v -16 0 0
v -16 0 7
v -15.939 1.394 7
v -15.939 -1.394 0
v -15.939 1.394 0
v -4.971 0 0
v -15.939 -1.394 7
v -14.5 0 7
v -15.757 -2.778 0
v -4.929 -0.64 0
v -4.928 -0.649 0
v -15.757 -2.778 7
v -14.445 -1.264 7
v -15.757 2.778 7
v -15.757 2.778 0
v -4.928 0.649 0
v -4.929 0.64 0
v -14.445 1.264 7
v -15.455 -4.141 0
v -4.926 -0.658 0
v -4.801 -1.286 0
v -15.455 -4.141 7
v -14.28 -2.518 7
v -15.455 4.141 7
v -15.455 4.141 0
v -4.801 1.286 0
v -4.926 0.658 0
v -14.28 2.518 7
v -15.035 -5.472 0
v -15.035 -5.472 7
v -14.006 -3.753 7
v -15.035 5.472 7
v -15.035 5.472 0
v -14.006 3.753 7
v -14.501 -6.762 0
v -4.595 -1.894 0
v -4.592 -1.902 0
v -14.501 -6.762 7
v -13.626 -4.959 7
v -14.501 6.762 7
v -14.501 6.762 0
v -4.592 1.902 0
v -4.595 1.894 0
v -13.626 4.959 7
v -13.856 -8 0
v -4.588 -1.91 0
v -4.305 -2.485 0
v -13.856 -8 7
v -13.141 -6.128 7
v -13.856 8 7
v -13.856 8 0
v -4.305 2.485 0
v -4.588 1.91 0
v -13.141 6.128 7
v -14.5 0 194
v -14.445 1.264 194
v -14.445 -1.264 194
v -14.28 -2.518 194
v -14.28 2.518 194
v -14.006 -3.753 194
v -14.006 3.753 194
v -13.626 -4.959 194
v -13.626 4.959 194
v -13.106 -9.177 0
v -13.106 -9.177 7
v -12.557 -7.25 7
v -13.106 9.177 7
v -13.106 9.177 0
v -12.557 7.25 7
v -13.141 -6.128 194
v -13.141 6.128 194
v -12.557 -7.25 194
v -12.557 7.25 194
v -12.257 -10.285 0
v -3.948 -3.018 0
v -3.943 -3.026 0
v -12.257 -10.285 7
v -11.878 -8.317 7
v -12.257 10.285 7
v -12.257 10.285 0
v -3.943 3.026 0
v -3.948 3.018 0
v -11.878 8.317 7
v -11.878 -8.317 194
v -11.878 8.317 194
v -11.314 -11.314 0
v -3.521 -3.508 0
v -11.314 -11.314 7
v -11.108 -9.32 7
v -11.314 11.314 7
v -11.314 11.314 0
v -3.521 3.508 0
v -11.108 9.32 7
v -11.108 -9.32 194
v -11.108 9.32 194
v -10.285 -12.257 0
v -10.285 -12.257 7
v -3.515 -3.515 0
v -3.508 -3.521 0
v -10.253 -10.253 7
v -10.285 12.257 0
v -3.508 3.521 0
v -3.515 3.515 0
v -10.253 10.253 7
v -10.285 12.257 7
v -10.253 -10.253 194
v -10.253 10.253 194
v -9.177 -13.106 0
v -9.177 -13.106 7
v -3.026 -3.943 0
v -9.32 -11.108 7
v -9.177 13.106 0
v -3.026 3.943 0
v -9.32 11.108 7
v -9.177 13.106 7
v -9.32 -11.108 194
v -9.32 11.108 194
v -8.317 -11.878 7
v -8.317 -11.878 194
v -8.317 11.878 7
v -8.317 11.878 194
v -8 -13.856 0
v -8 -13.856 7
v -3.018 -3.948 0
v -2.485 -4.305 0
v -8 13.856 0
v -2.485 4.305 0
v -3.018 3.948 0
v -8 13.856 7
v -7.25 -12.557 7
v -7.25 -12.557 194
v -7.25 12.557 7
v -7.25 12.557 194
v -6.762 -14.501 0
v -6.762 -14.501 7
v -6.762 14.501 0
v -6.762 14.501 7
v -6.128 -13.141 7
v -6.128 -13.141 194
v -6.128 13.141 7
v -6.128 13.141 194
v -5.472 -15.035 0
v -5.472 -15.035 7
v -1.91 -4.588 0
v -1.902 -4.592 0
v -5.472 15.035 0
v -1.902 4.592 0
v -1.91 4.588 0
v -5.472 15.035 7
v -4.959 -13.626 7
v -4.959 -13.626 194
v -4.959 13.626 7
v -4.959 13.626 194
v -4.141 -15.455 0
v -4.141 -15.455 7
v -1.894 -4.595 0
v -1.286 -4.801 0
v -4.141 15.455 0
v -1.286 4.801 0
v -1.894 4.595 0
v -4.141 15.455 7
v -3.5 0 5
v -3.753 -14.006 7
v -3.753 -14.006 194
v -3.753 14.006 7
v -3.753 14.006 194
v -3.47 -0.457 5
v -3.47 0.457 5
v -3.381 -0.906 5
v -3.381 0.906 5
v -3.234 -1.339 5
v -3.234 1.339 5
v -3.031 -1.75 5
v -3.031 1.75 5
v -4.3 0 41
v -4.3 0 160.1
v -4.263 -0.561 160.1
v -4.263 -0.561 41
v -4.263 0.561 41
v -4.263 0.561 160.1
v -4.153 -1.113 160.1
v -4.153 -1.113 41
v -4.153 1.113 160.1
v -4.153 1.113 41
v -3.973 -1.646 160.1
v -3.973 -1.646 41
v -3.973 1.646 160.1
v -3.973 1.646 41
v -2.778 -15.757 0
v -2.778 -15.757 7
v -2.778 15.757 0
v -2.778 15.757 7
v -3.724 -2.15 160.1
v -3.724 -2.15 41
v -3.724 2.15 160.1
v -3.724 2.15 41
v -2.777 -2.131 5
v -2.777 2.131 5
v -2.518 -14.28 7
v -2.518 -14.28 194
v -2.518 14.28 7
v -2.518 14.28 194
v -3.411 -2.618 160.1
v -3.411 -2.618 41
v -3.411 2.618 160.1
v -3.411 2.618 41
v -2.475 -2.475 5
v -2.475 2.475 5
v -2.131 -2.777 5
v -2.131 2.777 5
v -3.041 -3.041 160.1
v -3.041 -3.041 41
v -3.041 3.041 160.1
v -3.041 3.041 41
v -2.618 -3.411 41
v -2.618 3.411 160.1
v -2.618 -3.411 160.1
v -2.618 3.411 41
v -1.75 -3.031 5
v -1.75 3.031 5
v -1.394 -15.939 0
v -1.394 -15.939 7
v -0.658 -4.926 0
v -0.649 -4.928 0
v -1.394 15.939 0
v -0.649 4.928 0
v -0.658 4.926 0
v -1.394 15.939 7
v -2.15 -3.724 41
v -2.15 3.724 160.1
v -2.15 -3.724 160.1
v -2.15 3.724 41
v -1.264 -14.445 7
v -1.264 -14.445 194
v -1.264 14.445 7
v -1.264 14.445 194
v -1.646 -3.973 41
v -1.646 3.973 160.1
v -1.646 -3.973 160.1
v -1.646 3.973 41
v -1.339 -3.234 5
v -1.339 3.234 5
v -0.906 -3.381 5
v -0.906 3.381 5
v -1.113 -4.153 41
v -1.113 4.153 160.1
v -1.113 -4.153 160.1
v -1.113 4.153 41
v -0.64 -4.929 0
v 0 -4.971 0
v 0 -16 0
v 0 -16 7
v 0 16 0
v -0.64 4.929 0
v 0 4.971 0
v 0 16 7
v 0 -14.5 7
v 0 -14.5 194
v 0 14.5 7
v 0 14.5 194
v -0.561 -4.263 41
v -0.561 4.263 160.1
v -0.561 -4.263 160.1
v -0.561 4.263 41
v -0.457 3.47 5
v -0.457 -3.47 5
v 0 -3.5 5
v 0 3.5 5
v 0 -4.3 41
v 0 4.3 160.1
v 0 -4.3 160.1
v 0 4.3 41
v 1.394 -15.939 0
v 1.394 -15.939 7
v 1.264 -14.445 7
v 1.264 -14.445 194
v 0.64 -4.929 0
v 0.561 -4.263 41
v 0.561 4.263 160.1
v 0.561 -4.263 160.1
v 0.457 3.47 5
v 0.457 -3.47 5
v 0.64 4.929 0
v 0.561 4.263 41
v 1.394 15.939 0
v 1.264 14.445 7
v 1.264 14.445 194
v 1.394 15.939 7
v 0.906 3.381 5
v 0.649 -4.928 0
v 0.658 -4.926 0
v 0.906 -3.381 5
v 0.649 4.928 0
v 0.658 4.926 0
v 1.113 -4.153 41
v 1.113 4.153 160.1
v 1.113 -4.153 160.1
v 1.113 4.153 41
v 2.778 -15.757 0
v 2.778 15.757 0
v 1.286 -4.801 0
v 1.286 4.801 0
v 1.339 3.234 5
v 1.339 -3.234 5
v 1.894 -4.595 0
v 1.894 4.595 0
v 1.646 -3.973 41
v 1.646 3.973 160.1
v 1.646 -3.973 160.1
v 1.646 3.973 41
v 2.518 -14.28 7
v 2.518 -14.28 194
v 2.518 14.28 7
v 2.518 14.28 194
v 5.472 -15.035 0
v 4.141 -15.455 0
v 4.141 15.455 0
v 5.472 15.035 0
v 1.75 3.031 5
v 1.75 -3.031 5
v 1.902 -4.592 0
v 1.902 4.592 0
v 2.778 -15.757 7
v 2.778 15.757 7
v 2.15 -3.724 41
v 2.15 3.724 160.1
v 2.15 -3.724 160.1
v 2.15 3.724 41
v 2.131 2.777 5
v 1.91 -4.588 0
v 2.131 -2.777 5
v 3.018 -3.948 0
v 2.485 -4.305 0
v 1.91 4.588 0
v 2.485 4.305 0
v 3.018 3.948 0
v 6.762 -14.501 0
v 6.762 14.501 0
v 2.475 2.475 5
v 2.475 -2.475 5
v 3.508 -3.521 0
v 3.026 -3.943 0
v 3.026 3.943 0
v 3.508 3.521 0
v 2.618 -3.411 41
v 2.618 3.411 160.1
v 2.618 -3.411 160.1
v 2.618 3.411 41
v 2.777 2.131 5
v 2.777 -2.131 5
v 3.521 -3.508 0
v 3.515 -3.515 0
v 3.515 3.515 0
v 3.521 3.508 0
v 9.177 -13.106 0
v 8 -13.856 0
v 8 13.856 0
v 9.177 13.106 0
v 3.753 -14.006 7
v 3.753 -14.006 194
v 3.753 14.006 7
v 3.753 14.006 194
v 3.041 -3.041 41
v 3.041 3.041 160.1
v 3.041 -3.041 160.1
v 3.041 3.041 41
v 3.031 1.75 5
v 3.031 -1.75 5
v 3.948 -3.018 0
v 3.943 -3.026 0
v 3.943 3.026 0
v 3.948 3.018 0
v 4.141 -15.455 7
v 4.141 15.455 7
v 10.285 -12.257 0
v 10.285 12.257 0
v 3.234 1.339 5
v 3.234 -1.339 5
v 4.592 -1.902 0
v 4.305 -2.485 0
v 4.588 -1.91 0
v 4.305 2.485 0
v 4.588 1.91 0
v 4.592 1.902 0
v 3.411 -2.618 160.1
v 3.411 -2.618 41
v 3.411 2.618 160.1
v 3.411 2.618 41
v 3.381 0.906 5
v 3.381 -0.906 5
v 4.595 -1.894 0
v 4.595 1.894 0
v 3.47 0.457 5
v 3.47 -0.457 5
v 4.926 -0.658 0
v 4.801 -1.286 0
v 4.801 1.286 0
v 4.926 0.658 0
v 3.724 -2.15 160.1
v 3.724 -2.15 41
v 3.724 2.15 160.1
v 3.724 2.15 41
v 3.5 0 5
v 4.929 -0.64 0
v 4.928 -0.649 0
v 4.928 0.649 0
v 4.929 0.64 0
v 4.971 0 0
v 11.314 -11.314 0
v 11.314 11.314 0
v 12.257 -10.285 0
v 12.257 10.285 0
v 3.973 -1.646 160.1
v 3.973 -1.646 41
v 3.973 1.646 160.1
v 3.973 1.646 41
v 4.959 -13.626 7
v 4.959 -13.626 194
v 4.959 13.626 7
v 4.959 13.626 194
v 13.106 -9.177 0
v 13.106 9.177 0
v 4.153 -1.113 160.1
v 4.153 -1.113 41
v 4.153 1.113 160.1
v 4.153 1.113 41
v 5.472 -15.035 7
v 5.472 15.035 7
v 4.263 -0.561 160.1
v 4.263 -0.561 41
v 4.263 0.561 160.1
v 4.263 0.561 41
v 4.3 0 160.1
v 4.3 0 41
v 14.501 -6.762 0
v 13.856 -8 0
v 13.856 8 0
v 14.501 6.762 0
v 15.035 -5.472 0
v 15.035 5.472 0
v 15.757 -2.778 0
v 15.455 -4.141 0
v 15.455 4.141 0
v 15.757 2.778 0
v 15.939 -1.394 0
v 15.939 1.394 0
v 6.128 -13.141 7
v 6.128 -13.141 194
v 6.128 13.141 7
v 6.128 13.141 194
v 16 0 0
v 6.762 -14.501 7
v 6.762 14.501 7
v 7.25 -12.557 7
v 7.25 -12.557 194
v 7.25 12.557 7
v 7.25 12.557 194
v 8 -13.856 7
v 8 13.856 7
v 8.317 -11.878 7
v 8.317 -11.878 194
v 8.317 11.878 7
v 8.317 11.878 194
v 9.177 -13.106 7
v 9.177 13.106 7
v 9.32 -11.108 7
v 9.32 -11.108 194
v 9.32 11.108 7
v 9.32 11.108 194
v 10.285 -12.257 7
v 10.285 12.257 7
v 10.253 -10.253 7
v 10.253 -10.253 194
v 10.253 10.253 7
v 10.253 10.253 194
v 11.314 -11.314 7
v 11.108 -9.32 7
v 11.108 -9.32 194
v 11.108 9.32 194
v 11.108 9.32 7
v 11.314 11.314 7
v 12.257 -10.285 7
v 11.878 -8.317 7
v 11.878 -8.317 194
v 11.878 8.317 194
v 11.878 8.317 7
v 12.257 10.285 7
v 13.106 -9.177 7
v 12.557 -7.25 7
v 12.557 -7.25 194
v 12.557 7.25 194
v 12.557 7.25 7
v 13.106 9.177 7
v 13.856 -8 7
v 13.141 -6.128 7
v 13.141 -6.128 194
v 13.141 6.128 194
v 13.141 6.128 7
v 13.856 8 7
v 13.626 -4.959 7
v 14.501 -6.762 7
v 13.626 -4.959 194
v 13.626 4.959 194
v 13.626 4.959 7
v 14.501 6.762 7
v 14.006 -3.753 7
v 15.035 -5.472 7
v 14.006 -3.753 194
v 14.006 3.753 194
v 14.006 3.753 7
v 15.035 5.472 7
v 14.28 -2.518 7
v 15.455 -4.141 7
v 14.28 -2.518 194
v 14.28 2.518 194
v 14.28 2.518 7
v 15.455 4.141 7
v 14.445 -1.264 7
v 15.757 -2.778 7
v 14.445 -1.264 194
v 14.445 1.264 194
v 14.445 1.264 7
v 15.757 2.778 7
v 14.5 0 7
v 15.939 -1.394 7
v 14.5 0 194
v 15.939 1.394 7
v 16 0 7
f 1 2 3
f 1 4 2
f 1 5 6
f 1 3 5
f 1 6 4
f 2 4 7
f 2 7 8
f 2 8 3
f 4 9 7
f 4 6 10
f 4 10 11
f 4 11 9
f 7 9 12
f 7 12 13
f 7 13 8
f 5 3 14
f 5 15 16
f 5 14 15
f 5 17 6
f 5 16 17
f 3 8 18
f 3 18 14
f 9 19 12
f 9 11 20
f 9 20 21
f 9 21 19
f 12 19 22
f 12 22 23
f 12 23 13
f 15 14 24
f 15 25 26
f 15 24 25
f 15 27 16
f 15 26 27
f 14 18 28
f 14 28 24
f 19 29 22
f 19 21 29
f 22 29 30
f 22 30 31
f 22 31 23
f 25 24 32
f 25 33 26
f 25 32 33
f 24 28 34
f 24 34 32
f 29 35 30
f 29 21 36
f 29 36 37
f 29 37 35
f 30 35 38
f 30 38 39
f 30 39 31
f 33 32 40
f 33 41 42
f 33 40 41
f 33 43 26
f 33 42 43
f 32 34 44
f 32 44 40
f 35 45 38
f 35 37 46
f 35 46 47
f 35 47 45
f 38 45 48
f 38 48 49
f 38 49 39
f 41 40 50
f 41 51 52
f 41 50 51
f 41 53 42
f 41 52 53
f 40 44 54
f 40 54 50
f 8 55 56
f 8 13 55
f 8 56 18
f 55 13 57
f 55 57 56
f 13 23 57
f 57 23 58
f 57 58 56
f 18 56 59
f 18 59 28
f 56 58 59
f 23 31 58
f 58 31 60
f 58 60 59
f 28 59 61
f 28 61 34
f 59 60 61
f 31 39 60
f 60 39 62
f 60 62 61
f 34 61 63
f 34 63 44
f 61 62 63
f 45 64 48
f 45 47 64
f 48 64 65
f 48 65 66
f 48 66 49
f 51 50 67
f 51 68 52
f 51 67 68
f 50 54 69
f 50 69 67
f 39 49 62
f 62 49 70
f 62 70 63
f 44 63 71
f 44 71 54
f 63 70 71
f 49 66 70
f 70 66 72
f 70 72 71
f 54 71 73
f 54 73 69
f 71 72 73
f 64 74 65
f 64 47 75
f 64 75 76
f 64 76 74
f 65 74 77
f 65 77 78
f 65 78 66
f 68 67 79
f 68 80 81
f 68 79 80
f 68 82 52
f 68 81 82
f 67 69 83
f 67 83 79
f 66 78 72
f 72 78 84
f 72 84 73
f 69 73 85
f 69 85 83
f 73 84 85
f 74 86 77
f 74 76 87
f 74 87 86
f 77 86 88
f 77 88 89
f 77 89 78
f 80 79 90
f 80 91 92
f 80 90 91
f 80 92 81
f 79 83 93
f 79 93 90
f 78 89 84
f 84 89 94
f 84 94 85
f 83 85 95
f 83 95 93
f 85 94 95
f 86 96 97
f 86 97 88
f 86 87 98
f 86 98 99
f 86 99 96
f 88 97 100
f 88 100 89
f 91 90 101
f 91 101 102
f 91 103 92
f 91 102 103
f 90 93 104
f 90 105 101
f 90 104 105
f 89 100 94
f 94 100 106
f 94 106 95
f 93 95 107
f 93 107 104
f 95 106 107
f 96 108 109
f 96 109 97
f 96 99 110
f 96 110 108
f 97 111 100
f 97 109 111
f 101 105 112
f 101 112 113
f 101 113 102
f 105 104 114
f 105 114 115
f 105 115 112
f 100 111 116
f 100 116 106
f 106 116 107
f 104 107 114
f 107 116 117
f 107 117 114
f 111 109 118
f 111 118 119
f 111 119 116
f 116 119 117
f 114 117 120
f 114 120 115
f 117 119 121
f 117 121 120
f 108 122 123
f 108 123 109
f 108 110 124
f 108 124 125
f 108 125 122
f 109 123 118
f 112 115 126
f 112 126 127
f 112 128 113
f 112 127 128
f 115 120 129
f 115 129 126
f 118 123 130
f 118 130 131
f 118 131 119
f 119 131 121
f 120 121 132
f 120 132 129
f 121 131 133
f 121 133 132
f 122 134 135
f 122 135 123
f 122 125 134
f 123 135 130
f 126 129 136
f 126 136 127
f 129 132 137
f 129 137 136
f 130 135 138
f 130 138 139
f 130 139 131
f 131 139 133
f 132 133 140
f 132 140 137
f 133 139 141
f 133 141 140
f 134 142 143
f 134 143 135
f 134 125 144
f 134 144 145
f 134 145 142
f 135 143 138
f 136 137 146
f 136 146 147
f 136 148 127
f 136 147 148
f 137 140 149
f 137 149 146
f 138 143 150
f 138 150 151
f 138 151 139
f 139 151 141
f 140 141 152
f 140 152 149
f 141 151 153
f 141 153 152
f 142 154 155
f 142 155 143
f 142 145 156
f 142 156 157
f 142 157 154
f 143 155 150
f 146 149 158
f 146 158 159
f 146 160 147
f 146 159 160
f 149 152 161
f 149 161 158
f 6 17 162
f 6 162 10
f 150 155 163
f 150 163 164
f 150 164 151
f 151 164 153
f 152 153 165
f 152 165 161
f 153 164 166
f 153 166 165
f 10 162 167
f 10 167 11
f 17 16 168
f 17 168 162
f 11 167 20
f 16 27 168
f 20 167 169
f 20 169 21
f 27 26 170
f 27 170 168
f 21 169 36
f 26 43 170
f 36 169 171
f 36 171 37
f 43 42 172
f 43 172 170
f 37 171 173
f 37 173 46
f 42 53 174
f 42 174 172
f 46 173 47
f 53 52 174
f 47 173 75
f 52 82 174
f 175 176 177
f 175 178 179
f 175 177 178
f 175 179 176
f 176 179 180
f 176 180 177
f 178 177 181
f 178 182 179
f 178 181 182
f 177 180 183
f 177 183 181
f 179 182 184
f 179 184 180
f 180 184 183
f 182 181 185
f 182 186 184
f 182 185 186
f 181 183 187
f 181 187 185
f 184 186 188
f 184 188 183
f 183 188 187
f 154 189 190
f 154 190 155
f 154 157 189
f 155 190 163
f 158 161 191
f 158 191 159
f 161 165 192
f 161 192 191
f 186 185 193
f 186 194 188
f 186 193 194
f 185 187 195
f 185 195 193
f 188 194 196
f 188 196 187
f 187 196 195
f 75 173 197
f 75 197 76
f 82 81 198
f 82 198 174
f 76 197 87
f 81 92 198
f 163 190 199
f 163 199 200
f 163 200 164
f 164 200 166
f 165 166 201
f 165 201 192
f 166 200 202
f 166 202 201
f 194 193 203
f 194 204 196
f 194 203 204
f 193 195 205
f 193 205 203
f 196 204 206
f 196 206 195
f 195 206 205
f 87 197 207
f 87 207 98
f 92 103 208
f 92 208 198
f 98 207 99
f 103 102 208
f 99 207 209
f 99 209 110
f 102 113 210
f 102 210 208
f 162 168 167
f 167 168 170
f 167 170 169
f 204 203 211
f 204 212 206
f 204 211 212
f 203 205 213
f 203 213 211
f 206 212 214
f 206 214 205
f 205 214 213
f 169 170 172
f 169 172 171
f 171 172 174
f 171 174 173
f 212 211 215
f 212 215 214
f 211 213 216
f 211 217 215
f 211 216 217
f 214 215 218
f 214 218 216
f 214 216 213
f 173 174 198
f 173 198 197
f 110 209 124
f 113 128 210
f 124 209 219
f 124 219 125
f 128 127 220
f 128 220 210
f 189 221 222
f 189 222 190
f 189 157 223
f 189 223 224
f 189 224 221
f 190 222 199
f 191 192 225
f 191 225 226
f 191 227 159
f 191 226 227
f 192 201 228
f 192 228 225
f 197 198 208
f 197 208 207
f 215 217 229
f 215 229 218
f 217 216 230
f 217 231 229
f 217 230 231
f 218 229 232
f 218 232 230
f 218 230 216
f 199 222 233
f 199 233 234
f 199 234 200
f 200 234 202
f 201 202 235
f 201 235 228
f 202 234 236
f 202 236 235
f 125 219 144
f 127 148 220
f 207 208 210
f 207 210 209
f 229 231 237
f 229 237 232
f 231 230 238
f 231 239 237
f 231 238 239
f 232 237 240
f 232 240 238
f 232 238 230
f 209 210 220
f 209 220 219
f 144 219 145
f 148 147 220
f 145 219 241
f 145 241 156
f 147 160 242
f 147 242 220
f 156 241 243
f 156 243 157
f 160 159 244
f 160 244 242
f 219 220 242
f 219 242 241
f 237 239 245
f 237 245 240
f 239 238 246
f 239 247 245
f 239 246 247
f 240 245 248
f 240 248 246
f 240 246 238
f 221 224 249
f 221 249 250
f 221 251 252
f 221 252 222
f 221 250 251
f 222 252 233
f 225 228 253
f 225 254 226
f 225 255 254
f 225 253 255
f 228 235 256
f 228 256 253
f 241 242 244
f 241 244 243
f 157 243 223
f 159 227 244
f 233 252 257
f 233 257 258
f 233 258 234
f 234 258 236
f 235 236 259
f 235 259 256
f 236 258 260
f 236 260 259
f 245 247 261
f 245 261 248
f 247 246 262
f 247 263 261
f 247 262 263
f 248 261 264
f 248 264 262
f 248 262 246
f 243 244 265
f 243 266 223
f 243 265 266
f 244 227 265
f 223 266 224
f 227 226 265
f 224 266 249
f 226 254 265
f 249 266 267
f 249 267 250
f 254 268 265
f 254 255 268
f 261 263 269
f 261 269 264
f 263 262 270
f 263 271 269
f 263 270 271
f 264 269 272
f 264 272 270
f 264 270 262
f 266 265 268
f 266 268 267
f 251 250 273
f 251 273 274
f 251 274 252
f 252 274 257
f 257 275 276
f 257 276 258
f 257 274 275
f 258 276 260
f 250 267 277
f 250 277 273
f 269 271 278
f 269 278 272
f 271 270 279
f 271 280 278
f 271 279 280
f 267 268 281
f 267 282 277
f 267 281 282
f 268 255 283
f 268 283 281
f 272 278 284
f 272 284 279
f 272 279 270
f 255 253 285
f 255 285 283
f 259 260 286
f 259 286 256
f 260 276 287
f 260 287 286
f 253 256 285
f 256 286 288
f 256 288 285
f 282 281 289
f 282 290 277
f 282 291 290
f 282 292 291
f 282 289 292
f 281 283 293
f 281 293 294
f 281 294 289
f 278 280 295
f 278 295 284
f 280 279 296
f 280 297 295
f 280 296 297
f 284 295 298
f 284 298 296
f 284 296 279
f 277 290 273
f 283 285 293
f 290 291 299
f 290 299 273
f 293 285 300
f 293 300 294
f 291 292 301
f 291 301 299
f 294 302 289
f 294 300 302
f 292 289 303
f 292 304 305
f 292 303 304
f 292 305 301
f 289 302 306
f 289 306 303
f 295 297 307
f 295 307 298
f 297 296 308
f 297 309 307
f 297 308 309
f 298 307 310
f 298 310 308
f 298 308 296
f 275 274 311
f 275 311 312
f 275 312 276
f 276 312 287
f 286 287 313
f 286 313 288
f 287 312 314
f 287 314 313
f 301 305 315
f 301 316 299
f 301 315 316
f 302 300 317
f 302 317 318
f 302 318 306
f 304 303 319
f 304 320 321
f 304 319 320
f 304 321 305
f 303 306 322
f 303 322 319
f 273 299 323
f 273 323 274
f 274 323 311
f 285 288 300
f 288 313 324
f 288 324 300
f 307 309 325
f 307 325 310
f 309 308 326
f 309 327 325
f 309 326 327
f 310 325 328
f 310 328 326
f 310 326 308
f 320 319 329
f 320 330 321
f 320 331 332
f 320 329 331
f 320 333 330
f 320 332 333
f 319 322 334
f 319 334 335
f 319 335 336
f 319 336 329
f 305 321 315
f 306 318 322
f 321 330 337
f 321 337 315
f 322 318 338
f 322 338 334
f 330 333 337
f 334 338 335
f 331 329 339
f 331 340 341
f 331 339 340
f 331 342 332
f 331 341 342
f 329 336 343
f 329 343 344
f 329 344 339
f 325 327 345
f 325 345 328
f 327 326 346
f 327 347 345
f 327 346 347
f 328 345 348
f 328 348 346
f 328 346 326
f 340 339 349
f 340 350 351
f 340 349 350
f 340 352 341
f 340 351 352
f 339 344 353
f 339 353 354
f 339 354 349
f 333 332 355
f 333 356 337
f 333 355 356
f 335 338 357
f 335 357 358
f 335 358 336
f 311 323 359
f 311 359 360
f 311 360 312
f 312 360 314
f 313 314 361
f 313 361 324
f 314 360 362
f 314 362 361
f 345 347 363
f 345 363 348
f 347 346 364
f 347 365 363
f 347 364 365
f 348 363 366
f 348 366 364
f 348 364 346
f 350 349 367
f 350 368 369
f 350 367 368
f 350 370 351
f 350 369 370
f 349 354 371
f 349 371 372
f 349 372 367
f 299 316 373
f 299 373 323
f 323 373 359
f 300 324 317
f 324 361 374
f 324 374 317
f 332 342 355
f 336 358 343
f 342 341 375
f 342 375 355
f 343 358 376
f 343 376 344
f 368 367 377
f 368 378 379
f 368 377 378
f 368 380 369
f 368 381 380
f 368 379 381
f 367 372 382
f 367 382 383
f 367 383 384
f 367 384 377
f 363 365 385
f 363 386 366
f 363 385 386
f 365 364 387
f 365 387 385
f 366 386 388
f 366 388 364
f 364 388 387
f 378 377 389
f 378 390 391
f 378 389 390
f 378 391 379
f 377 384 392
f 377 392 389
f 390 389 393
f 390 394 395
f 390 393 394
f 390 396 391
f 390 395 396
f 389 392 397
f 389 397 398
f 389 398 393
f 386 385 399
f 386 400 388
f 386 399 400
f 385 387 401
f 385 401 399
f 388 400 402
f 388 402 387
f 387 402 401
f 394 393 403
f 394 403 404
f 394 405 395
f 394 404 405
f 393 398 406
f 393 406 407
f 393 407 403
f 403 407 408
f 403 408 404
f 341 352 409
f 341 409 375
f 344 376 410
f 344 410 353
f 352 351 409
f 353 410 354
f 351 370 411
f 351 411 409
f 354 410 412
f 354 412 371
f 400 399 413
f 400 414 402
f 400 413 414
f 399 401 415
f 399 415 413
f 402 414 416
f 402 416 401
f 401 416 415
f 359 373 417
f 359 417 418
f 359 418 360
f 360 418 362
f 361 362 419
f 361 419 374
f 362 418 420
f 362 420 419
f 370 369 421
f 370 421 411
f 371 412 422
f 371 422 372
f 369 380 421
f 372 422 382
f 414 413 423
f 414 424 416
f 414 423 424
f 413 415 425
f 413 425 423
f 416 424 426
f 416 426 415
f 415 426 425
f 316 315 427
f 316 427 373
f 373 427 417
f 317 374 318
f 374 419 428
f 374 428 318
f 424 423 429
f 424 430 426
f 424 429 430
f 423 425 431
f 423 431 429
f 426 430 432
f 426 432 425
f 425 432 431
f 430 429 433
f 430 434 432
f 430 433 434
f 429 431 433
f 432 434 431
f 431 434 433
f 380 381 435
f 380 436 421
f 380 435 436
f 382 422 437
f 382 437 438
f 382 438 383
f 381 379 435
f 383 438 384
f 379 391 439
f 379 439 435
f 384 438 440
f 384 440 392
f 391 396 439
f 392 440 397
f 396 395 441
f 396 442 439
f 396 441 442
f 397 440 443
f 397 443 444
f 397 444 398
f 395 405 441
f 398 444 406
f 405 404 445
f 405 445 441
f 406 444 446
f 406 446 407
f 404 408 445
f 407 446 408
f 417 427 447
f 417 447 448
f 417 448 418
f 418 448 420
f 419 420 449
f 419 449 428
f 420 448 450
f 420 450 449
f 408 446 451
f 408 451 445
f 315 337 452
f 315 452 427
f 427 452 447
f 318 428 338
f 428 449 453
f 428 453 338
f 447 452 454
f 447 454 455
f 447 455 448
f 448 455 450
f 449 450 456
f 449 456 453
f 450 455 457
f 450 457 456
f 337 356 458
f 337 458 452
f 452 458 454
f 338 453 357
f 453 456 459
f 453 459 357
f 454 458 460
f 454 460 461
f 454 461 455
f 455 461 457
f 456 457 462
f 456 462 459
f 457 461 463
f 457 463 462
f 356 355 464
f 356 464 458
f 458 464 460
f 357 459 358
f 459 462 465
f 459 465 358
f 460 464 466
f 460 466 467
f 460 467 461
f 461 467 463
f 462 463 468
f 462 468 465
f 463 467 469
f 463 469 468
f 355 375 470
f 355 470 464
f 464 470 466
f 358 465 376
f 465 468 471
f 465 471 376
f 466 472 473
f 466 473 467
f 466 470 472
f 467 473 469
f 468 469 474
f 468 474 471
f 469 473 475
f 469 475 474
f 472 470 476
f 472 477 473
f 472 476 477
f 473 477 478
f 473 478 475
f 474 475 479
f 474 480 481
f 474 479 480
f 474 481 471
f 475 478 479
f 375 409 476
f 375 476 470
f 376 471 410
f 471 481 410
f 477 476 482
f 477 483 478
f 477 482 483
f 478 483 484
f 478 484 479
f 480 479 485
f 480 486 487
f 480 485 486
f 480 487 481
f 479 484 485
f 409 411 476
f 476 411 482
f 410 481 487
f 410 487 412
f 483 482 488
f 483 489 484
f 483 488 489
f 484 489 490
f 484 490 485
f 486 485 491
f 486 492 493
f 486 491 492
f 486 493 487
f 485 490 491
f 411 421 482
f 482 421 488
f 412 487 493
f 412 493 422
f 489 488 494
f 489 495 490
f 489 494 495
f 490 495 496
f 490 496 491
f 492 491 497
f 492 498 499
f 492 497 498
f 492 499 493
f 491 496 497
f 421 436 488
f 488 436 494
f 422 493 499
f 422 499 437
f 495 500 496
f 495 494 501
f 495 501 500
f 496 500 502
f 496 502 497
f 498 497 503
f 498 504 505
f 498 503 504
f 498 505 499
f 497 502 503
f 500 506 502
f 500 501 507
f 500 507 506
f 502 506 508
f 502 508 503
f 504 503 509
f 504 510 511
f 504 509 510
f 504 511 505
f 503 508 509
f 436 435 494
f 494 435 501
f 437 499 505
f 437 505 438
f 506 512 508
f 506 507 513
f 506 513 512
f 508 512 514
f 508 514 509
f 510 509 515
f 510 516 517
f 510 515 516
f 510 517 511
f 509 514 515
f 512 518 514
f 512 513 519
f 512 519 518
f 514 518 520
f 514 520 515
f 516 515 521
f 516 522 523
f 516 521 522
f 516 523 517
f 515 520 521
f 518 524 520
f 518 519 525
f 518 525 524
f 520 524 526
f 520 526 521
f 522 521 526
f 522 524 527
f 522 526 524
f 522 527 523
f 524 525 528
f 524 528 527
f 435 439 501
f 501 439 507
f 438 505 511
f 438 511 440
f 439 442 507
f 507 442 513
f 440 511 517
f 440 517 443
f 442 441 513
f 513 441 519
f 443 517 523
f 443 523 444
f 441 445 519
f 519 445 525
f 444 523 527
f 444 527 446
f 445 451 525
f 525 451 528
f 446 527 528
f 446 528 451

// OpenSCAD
// Aerotech H128W-14A Motor Mass Equivalent Model
// Solid PLA with steel rod cavity and retainer shoulder

// === MOTOR SPECIFICATIONS ===
motor_diameter = 29;      // mm
motor_length = 194;       // mm
motor_mass = 206;         // grams

// === AFT CLOSURE SHOULDER ===
shoulder_diameter = 32;   // mm (retainer catches this)
shoulder_thickness = 7;   // mm

// === MATERIAL DENSITIES ===
pla_density = 1.24;       // g/cm³
steel_density = 7.85;     // g/cm³

// === STEEL ROD PARAMETERS ===
rod_diameter = 8;         // mm
rod_clearance = 0.3;      // mm

// === CALCULATIONS ===
motor_radius = motor_diameter / 2;
shoulder_radius = shoulder_diameter / 2;
rod_radius = rod_diameter / 2;
cavity_radius = rod_radius + rod_clearance;

// Body length (excluding shoulder)
body_length = motor_length - shoulder_thickness;

// Volumes (cm³)
body_volume_mm3 = PI * pow(motor_radius, 2) * body_length;
shoulder_volume_mm3 = PI * pow(shoulder_radius, 2) * shoulder_thickness;
solid_volume_cm3 = (body_volume_mm3 + shoulder_volume_mm3) / 1000;

pla_mass_if_solid = solid_volume_cm3 * pla_density;
mass_deficit = motor_mass - pla_mass_if_solid;

// Required steel rod
steel_volume_needed_cm3 = mass_deficit / steel_density;
rod_length_needed = (steel_volume_needed_cm3 * 1000) / (PI * pow(rod_radius, 2));

// Cavity positioning (centered in body, avoiding shoulder)
cavity_length = ceil(rod_length_needed) + 2;
cavity_offset = shoulder_thickness + (body_length - cavity_length) / 2;

// Final mass calculation
cavity_volume_cm3 = (PI * pow(cavity_radius, 2) * cavity_length) / 1000;
pla_volume_cm3 = solid_volume_cm3 - cavity_volume_cm3;
pla_mass = pla_volume_cm3 * pla_density;
rod_volume_cm3 = (PI * pow(rod_radius, 2) * rod_length_needed) / 1000;
rod_mass = rod_volume_cm3 * steel_density;
total_mass = pla_mass + rod_mass;

// === CONSOLE OUTPUT ===
echo("========================================");
echo("  AEROTECH H128W-14A MASS EQUIVALENT");
echo("========================================");
echo(str("Target mass: ", motor_mass, " g"));
echo(str("Body length: ", body_length, " mm"));
echo(str("Shoulder: ", shoulder_diameter, "mm x ", shoulder_thickness, "mm"));
echo("----------------------------------------");
echo(str("Steel rod: ", rod_diameter, "mm x ", rod_length_needed, "mm"));
echo(str("Cut rod to: ", ceil(rod_length_needed), " mm"));
echo("----------------------------------------");
echo(str("PLA mass: ", pla_mass, " g"));
echo(str("Steel mass: ", rod_mass, " g"));
echo(str("TOTAL MASS: ", total_mass, " g"));
echo(str("Target: ", motor_mass, " g (error: ", total_mass - motor_mass, " g)"));
echo("========================================");

// === NOZZLE COSMETIC DETAIL ===
nozzle_exit_diameter = 10;
nozzle_depth = 5;

// === MODEL ===
module motor_with_shoulder() {
    difference() {
        union() {
            // Aft shoulder (at z=0, this is the aft/nozzle end)
            cylinder(h = shoulder_thickness, r = shoulder_radius, $fn = 72);
            
            // Main body
            translate([0, 0, shoulder_thickness])
                cylinder(h = body_length, r = motor_radius, $fn = 72);
        }
        
        // Rod cavity
        translate([0, 0, cavity_offset])
            cylinder(h = cavity_length + 0.1, r = cavity_radius, $fn = 48);
        
        // Nozzle detail (aft end)
        translate([0, 0, -0.1])
            cylinder(h = nozzle_depth + 0.1, 
                    r1 = nozzle_exit_diameter/2, 
                    r2 = nozzle_exit_diameter * 0.35, 
                    $fn = 48);
    }
}

motor_with_shoulder();
